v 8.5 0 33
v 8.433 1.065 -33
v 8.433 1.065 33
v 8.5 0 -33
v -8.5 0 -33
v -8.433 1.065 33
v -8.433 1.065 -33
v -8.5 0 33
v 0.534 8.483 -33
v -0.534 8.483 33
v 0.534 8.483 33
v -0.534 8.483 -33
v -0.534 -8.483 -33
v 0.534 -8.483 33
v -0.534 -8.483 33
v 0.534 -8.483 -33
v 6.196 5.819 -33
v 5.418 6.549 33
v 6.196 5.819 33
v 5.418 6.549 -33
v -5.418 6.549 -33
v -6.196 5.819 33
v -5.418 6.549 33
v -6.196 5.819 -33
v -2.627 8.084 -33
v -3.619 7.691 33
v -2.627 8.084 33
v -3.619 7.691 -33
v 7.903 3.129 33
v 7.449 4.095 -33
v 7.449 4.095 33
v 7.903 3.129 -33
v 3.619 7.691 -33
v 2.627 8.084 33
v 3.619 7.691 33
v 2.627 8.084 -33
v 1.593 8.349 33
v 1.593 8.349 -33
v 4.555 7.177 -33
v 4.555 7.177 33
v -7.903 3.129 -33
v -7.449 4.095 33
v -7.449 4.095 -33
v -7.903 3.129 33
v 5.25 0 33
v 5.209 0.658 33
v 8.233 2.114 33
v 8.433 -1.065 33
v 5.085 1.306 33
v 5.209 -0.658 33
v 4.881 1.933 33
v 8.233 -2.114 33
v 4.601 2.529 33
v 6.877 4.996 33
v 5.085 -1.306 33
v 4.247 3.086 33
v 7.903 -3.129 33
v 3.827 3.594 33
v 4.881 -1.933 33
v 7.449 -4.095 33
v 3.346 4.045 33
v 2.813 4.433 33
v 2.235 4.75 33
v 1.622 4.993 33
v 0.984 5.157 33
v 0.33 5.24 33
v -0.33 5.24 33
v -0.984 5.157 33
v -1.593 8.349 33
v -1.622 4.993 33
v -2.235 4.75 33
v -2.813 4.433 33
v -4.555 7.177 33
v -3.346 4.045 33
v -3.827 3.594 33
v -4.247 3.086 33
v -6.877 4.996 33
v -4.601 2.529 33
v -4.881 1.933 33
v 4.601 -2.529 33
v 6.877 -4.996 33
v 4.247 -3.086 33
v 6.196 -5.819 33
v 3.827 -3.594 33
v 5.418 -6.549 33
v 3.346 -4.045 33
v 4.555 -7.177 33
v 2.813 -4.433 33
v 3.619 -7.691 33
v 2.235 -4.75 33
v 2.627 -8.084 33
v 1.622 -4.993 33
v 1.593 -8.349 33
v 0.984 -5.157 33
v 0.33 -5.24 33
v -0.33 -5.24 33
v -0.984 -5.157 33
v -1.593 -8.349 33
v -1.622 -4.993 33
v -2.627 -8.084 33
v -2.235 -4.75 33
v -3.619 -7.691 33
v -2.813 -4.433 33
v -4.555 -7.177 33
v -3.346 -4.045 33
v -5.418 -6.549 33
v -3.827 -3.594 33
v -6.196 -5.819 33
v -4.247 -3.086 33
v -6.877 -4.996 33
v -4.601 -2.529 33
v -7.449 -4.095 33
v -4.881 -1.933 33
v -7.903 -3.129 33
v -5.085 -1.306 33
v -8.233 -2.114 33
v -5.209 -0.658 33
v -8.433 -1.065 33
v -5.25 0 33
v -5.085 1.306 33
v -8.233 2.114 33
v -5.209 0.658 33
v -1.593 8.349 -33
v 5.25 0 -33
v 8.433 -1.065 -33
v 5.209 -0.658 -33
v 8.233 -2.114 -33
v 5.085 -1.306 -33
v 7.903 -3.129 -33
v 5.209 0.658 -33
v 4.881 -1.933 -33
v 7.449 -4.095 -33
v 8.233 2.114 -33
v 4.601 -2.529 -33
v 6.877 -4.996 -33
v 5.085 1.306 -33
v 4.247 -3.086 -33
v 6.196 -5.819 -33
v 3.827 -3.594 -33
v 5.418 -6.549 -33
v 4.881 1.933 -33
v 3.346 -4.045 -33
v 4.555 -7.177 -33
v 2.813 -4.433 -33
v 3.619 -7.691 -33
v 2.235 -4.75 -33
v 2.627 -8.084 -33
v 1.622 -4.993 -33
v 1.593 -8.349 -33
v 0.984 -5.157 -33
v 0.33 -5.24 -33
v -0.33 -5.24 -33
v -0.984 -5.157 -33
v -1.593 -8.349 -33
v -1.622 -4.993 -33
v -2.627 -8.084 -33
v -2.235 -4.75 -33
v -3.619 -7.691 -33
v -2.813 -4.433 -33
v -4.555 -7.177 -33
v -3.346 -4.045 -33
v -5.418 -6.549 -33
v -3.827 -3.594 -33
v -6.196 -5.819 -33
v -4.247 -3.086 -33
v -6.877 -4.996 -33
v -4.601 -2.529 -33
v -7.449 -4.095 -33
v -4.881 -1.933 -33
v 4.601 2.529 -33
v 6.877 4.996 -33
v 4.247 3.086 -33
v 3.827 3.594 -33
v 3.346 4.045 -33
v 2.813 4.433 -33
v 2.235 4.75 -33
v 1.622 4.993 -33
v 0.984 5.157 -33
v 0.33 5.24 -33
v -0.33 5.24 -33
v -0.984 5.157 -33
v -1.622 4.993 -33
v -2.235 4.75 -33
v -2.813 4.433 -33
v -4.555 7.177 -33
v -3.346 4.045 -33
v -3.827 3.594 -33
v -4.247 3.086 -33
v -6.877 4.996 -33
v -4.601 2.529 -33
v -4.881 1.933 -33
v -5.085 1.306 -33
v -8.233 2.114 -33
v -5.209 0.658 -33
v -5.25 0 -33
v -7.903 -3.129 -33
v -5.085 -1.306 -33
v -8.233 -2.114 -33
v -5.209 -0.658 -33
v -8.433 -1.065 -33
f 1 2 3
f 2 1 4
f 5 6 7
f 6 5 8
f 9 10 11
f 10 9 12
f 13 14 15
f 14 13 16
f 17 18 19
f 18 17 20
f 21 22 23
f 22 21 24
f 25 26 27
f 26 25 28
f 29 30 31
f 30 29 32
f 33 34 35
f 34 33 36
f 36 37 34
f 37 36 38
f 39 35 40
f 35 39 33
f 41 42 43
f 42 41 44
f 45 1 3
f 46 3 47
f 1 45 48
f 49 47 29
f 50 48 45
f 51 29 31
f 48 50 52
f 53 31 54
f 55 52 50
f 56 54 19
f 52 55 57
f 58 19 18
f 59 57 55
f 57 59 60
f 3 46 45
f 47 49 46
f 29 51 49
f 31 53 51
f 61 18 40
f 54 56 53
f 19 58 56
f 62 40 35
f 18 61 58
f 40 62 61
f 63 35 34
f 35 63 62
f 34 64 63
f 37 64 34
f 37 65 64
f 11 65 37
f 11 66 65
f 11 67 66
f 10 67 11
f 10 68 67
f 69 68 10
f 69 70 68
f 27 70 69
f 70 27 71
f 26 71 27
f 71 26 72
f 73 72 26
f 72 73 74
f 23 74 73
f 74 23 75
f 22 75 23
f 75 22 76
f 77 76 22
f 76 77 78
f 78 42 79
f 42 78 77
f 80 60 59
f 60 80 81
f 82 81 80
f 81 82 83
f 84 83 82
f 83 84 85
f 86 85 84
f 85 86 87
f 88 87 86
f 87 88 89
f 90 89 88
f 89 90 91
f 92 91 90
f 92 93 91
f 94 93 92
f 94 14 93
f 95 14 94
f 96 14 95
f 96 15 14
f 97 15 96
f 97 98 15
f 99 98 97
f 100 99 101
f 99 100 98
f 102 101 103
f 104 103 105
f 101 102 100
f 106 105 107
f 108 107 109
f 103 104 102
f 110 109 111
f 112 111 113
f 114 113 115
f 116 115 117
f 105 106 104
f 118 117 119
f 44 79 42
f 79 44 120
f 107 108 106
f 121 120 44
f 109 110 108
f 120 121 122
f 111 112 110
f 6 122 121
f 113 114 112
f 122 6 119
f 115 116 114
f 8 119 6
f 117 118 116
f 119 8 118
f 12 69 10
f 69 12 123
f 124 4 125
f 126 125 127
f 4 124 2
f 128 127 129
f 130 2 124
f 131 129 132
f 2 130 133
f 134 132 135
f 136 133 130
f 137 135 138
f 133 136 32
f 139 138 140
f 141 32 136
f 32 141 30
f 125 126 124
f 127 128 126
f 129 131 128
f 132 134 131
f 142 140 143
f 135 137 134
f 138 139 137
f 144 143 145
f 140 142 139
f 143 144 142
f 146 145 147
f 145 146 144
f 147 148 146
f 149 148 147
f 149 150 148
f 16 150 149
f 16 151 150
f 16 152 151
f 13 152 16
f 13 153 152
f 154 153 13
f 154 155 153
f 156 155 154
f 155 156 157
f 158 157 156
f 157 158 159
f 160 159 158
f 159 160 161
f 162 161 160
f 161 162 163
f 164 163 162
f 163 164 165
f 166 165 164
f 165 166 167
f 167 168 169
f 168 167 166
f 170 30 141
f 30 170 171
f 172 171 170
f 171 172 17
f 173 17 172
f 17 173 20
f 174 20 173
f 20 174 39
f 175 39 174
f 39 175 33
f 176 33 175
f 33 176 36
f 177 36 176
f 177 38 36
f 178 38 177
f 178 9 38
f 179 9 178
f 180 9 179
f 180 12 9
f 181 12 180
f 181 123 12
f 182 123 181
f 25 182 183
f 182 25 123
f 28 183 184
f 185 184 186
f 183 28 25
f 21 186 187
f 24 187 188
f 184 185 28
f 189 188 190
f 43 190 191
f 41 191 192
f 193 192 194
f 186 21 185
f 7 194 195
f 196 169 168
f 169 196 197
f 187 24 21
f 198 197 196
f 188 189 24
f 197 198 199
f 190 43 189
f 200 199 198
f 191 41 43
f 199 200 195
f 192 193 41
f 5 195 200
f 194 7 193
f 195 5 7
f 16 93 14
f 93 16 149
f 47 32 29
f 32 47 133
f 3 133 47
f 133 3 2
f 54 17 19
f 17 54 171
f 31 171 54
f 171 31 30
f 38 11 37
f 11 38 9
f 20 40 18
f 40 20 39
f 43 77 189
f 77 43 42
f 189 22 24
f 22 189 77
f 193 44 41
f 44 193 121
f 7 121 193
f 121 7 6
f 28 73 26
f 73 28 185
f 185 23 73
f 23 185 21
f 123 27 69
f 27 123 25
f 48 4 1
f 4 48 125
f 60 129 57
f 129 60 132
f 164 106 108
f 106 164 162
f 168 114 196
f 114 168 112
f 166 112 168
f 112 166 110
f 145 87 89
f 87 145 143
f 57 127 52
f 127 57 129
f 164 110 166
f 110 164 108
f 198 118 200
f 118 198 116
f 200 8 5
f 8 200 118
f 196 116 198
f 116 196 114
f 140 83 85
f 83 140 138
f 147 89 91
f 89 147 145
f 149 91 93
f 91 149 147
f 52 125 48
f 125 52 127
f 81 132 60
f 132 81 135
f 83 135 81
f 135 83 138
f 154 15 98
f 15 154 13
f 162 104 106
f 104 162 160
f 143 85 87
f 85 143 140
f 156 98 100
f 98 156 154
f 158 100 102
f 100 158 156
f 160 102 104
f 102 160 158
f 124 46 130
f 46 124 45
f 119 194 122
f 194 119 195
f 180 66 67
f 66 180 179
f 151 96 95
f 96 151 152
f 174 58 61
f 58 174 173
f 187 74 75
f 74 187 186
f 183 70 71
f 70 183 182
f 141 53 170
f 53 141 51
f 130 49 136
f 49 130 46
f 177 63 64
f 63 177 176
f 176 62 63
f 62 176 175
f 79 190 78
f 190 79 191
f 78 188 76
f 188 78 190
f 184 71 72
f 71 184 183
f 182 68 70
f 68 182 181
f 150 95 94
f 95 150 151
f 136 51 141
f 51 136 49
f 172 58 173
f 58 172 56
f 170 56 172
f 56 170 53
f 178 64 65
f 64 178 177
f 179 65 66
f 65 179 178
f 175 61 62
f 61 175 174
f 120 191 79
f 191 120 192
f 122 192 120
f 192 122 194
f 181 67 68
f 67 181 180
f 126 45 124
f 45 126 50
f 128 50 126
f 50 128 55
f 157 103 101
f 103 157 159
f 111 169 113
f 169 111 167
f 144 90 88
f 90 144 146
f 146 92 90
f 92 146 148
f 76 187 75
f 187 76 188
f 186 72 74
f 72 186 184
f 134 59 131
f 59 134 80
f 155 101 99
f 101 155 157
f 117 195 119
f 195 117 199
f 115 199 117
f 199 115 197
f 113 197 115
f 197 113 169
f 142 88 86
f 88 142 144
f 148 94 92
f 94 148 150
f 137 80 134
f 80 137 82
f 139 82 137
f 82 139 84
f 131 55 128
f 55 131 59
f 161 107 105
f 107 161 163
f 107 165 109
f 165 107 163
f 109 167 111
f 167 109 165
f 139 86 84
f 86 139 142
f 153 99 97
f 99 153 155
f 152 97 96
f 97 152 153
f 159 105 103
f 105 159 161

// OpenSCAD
$fn = 50;


difference() {
	union() {
		translate(v = [0, 0, -33.0000000000]) {
			cylinder(h = 66, r = 8.5000000000);
		}
	}
	union() {
		translate(v = [0, 0, -100.0000000000]) {
			cylinder(h = 200, r = 5.2500000000);
		}
	}
}
